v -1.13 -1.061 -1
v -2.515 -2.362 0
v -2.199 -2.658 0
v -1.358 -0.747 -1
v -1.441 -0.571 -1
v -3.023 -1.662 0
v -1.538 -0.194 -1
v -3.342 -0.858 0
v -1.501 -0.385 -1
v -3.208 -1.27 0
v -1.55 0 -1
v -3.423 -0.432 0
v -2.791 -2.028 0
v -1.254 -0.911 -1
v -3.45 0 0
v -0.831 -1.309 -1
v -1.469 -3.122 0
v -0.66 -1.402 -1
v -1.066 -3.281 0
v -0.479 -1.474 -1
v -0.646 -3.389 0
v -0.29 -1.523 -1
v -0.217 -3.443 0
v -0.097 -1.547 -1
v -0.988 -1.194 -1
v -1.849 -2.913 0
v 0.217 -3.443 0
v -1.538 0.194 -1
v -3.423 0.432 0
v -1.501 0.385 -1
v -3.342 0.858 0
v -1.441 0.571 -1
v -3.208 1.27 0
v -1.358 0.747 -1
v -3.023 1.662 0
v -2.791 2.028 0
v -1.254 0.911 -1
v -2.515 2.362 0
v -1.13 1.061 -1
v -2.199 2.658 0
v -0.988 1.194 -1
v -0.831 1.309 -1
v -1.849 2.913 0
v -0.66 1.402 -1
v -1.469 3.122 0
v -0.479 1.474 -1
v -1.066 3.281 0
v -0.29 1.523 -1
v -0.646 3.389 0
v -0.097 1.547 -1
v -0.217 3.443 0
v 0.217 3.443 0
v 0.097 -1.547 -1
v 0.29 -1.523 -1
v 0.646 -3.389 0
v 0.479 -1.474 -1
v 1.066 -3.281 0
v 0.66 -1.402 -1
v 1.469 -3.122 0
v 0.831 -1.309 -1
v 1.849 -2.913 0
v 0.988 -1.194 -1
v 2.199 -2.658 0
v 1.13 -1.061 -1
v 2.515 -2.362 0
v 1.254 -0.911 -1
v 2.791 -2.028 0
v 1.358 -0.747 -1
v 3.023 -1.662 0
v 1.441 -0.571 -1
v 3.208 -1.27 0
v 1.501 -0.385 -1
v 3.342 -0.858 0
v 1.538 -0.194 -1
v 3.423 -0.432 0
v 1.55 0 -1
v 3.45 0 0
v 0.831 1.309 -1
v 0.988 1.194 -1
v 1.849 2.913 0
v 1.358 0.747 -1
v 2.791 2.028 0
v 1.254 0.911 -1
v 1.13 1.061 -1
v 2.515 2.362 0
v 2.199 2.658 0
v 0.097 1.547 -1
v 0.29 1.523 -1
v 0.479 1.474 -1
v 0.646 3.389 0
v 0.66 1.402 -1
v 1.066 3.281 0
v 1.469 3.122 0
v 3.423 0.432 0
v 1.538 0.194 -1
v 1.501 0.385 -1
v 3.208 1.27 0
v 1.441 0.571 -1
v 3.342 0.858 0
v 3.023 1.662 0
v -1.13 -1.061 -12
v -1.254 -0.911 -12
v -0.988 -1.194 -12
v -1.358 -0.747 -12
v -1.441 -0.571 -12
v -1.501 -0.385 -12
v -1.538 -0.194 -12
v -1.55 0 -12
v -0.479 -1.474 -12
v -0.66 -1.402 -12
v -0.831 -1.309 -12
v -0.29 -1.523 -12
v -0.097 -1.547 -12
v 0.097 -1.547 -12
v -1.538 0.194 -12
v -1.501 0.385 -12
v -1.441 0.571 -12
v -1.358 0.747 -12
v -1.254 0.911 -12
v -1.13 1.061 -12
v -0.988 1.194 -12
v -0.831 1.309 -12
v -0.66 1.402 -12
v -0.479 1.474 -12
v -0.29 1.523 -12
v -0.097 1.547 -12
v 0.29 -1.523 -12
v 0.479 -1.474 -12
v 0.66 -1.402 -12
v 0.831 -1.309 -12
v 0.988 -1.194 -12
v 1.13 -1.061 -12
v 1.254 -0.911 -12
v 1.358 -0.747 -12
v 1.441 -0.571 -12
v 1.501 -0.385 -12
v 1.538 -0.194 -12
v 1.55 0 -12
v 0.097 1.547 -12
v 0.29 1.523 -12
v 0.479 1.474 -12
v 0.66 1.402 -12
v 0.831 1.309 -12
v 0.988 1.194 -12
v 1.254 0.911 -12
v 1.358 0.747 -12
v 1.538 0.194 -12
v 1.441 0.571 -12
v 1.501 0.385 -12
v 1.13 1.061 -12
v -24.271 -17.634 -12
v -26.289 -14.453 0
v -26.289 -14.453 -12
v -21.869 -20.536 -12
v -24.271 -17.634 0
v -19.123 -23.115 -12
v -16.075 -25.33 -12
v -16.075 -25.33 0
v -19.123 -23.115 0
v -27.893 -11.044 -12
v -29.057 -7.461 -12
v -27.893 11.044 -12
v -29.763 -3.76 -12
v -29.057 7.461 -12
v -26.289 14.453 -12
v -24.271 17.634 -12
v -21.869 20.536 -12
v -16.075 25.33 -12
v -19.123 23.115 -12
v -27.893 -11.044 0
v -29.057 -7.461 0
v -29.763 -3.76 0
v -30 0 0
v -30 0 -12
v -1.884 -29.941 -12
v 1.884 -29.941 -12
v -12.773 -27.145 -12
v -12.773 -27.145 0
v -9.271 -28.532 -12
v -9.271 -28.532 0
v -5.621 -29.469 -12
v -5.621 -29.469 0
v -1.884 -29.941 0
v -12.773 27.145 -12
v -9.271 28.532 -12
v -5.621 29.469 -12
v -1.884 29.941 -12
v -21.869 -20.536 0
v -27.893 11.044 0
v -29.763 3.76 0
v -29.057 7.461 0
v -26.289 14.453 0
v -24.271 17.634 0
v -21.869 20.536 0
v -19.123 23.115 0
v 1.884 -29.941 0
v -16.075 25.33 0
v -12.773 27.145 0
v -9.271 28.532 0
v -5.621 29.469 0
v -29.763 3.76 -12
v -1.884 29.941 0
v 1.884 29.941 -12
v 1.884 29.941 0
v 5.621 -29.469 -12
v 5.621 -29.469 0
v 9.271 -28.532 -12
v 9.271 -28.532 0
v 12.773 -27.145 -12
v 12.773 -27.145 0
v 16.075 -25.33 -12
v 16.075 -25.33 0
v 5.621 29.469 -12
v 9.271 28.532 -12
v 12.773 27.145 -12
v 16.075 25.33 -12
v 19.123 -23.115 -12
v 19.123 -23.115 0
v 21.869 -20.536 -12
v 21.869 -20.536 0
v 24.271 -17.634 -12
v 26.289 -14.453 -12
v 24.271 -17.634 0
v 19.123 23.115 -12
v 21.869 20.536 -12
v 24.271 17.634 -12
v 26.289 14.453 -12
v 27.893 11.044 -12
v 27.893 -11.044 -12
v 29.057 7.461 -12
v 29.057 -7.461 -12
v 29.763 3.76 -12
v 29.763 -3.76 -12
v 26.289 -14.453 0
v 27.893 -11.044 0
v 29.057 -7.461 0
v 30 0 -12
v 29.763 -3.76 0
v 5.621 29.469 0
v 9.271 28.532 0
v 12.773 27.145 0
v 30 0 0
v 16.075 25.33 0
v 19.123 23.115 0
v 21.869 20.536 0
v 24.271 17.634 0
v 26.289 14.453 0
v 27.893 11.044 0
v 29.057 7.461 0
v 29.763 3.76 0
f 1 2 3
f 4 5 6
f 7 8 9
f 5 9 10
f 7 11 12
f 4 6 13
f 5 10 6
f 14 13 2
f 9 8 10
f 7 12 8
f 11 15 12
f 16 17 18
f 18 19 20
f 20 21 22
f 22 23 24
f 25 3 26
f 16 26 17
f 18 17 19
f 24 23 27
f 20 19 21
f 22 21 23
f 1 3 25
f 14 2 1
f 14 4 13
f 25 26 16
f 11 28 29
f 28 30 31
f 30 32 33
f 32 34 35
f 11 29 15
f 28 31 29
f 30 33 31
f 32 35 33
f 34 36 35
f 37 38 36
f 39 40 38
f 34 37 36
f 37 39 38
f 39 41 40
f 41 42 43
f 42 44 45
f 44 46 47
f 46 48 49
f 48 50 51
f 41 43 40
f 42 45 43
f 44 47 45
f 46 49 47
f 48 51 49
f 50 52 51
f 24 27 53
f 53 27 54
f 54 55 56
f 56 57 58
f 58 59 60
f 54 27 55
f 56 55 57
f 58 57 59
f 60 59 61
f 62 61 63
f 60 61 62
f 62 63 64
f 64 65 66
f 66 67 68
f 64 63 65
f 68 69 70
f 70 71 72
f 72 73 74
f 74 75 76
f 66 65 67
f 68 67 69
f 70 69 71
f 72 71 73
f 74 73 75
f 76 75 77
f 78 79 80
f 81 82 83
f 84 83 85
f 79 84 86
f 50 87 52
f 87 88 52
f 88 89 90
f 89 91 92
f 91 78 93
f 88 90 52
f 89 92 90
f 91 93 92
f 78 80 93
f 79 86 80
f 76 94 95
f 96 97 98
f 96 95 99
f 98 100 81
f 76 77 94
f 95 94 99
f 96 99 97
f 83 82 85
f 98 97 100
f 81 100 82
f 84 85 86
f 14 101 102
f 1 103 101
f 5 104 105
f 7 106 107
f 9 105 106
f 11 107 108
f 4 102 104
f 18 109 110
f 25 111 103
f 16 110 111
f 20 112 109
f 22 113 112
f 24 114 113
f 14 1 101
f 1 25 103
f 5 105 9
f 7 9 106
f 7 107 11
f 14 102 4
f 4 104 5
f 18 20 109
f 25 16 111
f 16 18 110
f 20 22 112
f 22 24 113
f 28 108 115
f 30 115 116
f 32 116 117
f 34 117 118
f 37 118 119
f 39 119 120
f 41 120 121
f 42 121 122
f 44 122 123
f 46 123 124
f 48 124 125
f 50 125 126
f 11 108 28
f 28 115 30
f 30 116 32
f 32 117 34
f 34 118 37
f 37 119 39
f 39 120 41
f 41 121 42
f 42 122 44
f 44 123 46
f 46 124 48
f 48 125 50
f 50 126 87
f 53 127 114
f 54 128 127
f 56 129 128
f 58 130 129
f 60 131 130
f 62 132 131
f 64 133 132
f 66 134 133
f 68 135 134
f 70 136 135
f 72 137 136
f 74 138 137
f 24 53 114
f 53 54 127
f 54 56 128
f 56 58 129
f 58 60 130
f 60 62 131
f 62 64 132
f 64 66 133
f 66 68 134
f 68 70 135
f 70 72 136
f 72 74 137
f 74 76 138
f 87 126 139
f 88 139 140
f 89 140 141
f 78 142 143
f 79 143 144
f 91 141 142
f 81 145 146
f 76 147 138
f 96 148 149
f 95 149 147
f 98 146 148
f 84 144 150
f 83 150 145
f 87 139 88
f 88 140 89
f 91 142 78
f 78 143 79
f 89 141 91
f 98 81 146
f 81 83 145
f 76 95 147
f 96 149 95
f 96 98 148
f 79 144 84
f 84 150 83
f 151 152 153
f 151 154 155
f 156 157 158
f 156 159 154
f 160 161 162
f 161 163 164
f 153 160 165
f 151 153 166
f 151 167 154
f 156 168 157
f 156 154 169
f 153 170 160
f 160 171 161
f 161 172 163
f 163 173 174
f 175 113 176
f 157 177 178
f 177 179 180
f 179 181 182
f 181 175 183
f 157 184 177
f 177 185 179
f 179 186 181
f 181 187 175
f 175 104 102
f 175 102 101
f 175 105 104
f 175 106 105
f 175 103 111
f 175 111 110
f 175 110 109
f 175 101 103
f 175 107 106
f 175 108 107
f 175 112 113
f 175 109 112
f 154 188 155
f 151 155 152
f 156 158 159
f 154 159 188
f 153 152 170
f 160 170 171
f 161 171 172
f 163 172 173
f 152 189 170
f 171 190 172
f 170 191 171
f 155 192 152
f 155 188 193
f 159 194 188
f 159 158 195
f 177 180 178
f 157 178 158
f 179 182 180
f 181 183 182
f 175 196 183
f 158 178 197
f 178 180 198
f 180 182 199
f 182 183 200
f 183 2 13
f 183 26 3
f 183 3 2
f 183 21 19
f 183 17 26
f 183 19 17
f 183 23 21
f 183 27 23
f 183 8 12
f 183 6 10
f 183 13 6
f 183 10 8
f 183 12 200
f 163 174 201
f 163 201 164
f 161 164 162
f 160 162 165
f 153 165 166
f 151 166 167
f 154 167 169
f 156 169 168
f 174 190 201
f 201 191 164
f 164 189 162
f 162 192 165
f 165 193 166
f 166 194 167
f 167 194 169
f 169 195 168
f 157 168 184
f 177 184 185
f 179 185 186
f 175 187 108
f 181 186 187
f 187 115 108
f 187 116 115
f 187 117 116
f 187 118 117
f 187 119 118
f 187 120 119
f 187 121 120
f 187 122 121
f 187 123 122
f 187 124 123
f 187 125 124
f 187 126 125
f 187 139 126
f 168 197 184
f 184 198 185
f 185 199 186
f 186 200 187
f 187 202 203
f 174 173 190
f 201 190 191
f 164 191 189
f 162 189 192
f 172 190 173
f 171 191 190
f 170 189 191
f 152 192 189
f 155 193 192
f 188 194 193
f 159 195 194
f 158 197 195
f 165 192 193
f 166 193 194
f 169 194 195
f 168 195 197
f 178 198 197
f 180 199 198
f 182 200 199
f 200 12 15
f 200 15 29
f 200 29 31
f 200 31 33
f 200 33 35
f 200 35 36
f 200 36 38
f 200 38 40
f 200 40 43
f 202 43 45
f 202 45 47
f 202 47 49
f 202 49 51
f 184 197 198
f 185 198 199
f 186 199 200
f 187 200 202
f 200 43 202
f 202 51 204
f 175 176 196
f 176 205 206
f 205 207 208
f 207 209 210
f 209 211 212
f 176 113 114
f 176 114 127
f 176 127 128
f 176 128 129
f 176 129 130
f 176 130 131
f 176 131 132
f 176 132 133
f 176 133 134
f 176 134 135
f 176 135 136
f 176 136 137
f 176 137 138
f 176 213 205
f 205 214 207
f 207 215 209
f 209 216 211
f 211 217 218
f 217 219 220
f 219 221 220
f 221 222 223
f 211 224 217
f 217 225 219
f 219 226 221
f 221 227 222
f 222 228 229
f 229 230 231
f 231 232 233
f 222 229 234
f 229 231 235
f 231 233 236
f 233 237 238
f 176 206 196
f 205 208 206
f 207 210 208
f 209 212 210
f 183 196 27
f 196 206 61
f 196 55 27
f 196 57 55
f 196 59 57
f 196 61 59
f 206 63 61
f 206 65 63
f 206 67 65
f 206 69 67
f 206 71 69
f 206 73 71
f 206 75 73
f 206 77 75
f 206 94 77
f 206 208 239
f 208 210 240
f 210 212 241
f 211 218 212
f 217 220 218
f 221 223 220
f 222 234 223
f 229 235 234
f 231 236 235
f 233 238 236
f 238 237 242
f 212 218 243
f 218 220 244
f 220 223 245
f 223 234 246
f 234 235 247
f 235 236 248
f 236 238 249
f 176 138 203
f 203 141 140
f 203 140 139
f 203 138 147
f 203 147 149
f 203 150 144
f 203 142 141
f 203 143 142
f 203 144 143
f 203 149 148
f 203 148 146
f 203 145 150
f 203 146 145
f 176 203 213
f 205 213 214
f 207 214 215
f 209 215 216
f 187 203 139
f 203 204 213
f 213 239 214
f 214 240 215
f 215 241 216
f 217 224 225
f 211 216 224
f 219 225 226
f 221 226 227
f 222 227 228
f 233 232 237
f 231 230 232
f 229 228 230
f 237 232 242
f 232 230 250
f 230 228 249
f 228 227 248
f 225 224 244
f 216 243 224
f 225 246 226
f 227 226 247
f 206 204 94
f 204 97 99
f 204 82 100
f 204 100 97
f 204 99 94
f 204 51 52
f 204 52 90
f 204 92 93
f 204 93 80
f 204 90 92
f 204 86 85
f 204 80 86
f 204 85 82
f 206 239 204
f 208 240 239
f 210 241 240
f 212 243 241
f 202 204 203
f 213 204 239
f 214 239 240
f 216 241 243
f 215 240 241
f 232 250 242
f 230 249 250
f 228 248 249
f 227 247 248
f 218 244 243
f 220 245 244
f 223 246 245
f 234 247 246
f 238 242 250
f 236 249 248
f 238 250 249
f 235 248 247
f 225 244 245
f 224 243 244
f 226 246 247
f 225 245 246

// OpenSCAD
$fn = 50;

difference() {
	union() {
		translate(v = [0, 0, -12.0]) {
			cylinder(h = 12, r = 30.0);
		}
	}
	union() {
		translate(v = [0, 0, 0]) {
			rotate(a = [0, 0, 0]) {
				difference() {
					union() {
						translate(v = [0, 0, -15.0]) {
							cylinder(h = 15, r = 1.25);
						}
						translate(v = [0, 0, -1.0]) {
							cylinder(h = 1.0, r1 = 1.55, r2 = 3.45);
						}
						translate(v = [0, 0, -15.0]) {
							cylinder(h = 15, r = 1.55);
						}
						translate(v = [0, 0, -15.0]) {
							cylinder(h = 15, r = 1.25);
						}
					}
					union();
				}
			}
		}
	}
}
